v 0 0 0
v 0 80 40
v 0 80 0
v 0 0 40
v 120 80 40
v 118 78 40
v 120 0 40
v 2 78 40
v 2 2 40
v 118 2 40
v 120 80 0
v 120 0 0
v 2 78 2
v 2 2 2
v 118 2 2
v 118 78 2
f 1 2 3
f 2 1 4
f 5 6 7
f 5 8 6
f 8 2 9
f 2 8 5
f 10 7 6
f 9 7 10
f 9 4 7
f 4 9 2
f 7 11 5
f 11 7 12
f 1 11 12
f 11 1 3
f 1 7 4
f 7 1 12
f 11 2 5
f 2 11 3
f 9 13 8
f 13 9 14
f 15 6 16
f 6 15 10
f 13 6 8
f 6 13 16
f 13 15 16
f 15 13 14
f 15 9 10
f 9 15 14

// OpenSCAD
// organizer-v12 / body
// 3D AI Designer V1.1 Geometry Engine uretimi - tum olculer mm.

// ============ PARAMETERS ============
width = 120;
depth = 80;
height = 40;
$fn = 96;  // dairesel yuzey cozunurlugu (bbox dogrulugu icin)
wall_thickness = 2;

// ============ GEOMETRY + BOOLEAN OPERATIONS ============
difference() { cube([120, 80, 40]); translate([2, 2, 2]) cube([116, 76, 39]); }

// ============ ASSEMBLY / NOTLAR ============
// NOT: assembly metadata: validation disi (simulasyon yok)

// ============ EXPORT ============
// Export harici arac ile yapilir (Export-Stl.ps1).
